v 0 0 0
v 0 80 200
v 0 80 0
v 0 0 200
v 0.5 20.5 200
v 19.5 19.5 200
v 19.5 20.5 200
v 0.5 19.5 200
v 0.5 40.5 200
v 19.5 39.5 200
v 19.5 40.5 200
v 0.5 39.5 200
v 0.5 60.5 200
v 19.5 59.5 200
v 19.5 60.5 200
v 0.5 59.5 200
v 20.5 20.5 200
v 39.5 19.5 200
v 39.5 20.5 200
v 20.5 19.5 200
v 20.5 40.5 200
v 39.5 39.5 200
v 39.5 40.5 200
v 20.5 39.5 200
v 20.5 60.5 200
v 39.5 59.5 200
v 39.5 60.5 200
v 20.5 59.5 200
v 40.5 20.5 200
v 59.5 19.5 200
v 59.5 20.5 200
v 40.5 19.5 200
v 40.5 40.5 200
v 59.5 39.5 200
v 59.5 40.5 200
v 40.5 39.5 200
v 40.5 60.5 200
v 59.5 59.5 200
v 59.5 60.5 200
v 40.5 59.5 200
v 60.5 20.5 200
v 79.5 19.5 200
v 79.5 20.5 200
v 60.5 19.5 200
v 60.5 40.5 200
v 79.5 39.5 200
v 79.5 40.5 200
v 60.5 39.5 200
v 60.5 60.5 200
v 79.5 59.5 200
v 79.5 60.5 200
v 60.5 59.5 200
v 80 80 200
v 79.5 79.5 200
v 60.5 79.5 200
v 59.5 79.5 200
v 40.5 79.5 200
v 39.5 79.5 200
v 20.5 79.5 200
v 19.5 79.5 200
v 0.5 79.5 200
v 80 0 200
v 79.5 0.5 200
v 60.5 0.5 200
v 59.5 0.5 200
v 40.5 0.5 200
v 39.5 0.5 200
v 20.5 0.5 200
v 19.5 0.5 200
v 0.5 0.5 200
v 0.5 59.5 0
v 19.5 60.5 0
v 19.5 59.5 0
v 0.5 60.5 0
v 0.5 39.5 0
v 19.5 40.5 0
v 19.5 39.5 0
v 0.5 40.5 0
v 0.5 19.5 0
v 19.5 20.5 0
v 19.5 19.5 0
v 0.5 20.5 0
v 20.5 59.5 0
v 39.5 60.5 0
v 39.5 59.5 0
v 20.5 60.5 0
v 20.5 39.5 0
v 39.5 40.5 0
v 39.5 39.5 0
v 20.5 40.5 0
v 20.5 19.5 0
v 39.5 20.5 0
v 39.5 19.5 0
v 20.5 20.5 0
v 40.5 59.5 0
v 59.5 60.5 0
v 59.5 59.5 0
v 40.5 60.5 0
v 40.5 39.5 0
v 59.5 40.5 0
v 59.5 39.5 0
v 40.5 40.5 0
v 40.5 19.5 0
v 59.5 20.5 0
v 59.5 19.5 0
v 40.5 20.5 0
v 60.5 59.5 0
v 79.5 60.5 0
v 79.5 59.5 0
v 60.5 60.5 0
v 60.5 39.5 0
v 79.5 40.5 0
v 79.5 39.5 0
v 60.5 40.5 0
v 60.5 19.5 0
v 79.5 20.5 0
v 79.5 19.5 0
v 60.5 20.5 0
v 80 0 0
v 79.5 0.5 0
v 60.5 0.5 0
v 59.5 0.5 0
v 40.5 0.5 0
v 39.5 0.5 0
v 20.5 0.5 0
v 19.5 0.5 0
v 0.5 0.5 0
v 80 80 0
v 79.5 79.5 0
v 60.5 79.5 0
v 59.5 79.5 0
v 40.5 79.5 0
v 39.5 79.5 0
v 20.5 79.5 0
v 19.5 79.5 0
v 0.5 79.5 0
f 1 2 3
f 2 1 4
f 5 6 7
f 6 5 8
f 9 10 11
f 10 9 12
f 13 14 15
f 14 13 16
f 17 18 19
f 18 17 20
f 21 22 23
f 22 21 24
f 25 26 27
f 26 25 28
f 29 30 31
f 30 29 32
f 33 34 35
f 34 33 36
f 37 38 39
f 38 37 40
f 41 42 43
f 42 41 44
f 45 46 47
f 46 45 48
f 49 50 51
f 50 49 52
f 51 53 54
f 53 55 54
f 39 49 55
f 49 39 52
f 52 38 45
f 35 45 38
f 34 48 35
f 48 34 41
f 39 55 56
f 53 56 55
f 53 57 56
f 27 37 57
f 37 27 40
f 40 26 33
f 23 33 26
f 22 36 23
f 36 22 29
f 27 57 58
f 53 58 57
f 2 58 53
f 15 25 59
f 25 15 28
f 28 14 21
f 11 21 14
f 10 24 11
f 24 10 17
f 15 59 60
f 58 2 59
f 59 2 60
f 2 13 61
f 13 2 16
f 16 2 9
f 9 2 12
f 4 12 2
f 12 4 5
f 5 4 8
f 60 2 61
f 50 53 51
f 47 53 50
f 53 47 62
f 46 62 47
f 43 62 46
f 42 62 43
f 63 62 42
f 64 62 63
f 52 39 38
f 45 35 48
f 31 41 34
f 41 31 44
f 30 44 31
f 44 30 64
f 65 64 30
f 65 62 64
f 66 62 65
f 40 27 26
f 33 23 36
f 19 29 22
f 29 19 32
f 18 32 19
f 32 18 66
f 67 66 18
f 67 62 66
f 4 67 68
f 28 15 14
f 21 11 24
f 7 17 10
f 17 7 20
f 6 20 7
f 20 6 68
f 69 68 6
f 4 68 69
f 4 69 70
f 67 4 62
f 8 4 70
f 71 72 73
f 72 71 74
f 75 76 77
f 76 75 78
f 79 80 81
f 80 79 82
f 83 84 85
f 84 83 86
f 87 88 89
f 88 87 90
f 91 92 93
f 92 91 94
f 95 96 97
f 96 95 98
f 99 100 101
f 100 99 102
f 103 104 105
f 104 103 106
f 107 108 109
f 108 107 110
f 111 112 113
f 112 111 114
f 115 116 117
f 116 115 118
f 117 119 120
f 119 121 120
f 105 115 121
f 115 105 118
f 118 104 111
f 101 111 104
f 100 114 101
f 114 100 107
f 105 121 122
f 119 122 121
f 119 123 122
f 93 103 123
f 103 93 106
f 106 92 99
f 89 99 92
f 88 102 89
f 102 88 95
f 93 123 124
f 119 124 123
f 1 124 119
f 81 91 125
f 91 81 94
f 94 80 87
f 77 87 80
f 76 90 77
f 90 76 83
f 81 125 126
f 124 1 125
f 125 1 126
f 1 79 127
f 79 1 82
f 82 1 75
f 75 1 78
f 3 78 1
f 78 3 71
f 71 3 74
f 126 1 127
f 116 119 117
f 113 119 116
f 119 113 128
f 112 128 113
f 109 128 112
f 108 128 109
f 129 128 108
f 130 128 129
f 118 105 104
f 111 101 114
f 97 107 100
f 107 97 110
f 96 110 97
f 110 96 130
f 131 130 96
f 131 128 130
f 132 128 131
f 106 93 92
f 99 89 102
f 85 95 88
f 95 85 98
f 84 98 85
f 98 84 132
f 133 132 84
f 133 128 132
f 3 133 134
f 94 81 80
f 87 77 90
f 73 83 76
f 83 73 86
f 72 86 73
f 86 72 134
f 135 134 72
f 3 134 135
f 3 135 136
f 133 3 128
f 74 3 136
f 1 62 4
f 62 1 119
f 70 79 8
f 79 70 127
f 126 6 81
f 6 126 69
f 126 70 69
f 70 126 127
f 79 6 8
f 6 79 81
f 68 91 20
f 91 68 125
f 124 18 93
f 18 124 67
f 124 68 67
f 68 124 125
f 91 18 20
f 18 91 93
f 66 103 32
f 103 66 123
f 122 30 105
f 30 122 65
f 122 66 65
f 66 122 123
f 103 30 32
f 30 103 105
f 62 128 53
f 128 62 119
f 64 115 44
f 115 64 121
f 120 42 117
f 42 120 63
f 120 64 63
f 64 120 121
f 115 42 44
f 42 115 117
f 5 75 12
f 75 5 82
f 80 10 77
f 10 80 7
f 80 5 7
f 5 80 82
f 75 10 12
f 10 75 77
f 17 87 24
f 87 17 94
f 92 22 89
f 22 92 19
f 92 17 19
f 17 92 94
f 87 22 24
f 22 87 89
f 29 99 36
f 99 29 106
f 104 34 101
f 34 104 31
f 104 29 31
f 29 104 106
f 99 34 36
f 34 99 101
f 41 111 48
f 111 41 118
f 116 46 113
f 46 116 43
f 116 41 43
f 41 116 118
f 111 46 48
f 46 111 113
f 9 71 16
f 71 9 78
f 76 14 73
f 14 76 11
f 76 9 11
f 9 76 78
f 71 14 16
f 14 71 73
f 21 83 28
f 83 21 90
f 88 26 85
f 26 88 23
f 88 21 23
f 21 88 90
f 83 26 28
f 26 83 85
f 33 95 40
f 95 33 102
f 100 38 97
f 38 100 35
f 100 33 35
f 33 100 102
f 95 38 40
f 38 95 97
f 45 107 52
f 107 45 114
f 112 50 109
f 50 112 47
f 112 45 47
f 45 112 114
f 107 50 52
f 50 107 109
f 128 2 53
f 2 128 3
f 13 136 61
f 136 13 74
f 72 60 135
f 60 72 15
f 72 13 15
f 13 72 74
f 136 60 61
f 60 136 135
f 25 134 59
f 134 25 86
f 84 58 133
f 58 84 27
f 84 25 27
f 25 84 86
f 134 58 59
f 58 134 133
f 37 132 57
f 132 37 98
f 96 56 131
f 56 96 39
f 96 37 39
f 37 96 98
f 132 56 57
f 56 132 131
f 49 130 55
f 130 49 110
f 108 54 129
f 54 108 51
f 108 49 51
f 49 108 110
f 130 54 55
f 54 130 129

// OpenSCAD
union() {
	translate(v = [0.0, 0.0, 0]) {
		difference() {
			cube(size = [20.0, 20.0, 200.0]);
			translate(v = [0.5, 0.5, -0.1]) {
				cube(size = [19.0, 19.0, 200.2]);
			}
		}
	}
	translate(v = [20.0, 0.0, 0]) {
		difference() {
			cube(size = [20.0, 20.0, 200.0]);
			translate(v = [0.5, 0.5, -0.1]) {
				cube(size = [19.0, 19.0, 200.2]);
			}
		}
	}
	translate(v = [40.0, 0.0, 0]) {
		difference() {
			cube(size = [20.0, 20.0, 200.0]);
			translate(v = [0.5, 0.5, -0.1]) {
				cube(size = [19.0, 19.0, 200.2]);
			}
		}
	}
	translate(v = [60.0, 0.0, 0]) {
		difference() {
			cube(size = [20.0, 20.0, 200.0]);
			translate(v = [0.5, 0.5, -0.1]) {
				cube(size = [19.0, 19.0, 200.2]);
			}
		}
	}
	translate(v = [0.0, 20.0, 0]) {
		difference() {
			cube(size = [20.0, 20.0, 200.0]);
			translate(v = [0.5, 0.5, -0.1]) {
				cube(size = [19.0, 19.0, 200.2]);
			}
		}
	}
	translate(v = [20.0, 20.0, 0]) {
		difference() {
			cube(size = [20.0, 20.0, 200.0]);
			translate(v = [0.5, 0.5, -0.1]) {
				cube(size = [19.0, 19.0, 200.2]);
			}
		}
	}
	translate(v = [40.0, 20.0, 0]) {
		difference() {
			cube(size = [20.0, 20.0, 200.0]);
			translate(v = [0.5, 0.5, -0.1]) {
				cube(size = [19.0, 19.0, 200.2]);
			}
		}
	}
	translate(v = [60.0, 20.0, 0]) {
		difference() {
			cube(size = [20.0, 20.0, 200.0]);
			translate(v = [0.5, 0.5, -0.1]) {
				cube(size = [19.0, 19.0, 200.2]);
			}
		}
	}
	translate(v = [0.0, 40.0, 0]) {
		difference() {
			cube(size = [20.0, 20.0, 200.0]);
			translate(v = [0.5, 0.5, -0.1]) {
				cube(size = [19.0, 19.0, 200.2]);
			}
		}
	}
	translate(v = [20.0, 40.0, 0]) {
		difference() {
			cube(size = [20.0, 20.0, 200.0]);
			translate(v = [0.5, 0.5, -0.1]) {
				cube(size = [19.0, 19.0, 200.2]);
			}
		}
	}
	translate(v = [40.0, 40.0, 0]) {
		difference() {
			cube(size = [20.0, 20.0, 200.0]);
			translate(v = [0.5, 0.5, -0.1]) {
				cube(size = [19.0, 19.0, 200.2]);
			}
		}
	}
	translate(v = [60.0, 40.0, 0]) {
		difference() {
			cube(size = [20.0, 20.0, 200.0]);
			translate(v = [0.5, 0.5, -0.1]) {
				cube(size = [19.0, 19.0, 200.2]);
			}
		}
	}
	translate(v = [0.0, 60.0, 0]) {
		difference() {
			cube(size = [20.0, 20.0, 200.0]);
			translate(v = [0.5, 0.5, -0.1]) {
				cube(size = [19.0, 19.0, 200.2]);
			}
		}
	}
	translate(v = [20.0, 60.0, 0]) {
		difference() {
			cube(size = [20.0, 20.0, 200.0]);
			translate(v = [0.5, 0.5, -0.1]) {
				cube(size = [19.0, 19.0, 200.2]);
			}
		}
	}
	translate(v = [40.0, 60.0, 0]) {
		difference() {
			cube(size = [20.0, 20.0, 200.0]);
			translate(v = [0.5, 0.5, -0.1]) {
				cube(size = [19.0, 19.0, 200.2]);
			}
		}
	}
	translate(v = [60.0, 60.0, 0]) {
		difference() {
			cube(size = [20.0, 20.0, 200.0]);
			translate(v = [0.5, 0.5, -0.1]) {
				cube(size = [19.0, 19.0, 200.2]);
			}
		}
	}
}
